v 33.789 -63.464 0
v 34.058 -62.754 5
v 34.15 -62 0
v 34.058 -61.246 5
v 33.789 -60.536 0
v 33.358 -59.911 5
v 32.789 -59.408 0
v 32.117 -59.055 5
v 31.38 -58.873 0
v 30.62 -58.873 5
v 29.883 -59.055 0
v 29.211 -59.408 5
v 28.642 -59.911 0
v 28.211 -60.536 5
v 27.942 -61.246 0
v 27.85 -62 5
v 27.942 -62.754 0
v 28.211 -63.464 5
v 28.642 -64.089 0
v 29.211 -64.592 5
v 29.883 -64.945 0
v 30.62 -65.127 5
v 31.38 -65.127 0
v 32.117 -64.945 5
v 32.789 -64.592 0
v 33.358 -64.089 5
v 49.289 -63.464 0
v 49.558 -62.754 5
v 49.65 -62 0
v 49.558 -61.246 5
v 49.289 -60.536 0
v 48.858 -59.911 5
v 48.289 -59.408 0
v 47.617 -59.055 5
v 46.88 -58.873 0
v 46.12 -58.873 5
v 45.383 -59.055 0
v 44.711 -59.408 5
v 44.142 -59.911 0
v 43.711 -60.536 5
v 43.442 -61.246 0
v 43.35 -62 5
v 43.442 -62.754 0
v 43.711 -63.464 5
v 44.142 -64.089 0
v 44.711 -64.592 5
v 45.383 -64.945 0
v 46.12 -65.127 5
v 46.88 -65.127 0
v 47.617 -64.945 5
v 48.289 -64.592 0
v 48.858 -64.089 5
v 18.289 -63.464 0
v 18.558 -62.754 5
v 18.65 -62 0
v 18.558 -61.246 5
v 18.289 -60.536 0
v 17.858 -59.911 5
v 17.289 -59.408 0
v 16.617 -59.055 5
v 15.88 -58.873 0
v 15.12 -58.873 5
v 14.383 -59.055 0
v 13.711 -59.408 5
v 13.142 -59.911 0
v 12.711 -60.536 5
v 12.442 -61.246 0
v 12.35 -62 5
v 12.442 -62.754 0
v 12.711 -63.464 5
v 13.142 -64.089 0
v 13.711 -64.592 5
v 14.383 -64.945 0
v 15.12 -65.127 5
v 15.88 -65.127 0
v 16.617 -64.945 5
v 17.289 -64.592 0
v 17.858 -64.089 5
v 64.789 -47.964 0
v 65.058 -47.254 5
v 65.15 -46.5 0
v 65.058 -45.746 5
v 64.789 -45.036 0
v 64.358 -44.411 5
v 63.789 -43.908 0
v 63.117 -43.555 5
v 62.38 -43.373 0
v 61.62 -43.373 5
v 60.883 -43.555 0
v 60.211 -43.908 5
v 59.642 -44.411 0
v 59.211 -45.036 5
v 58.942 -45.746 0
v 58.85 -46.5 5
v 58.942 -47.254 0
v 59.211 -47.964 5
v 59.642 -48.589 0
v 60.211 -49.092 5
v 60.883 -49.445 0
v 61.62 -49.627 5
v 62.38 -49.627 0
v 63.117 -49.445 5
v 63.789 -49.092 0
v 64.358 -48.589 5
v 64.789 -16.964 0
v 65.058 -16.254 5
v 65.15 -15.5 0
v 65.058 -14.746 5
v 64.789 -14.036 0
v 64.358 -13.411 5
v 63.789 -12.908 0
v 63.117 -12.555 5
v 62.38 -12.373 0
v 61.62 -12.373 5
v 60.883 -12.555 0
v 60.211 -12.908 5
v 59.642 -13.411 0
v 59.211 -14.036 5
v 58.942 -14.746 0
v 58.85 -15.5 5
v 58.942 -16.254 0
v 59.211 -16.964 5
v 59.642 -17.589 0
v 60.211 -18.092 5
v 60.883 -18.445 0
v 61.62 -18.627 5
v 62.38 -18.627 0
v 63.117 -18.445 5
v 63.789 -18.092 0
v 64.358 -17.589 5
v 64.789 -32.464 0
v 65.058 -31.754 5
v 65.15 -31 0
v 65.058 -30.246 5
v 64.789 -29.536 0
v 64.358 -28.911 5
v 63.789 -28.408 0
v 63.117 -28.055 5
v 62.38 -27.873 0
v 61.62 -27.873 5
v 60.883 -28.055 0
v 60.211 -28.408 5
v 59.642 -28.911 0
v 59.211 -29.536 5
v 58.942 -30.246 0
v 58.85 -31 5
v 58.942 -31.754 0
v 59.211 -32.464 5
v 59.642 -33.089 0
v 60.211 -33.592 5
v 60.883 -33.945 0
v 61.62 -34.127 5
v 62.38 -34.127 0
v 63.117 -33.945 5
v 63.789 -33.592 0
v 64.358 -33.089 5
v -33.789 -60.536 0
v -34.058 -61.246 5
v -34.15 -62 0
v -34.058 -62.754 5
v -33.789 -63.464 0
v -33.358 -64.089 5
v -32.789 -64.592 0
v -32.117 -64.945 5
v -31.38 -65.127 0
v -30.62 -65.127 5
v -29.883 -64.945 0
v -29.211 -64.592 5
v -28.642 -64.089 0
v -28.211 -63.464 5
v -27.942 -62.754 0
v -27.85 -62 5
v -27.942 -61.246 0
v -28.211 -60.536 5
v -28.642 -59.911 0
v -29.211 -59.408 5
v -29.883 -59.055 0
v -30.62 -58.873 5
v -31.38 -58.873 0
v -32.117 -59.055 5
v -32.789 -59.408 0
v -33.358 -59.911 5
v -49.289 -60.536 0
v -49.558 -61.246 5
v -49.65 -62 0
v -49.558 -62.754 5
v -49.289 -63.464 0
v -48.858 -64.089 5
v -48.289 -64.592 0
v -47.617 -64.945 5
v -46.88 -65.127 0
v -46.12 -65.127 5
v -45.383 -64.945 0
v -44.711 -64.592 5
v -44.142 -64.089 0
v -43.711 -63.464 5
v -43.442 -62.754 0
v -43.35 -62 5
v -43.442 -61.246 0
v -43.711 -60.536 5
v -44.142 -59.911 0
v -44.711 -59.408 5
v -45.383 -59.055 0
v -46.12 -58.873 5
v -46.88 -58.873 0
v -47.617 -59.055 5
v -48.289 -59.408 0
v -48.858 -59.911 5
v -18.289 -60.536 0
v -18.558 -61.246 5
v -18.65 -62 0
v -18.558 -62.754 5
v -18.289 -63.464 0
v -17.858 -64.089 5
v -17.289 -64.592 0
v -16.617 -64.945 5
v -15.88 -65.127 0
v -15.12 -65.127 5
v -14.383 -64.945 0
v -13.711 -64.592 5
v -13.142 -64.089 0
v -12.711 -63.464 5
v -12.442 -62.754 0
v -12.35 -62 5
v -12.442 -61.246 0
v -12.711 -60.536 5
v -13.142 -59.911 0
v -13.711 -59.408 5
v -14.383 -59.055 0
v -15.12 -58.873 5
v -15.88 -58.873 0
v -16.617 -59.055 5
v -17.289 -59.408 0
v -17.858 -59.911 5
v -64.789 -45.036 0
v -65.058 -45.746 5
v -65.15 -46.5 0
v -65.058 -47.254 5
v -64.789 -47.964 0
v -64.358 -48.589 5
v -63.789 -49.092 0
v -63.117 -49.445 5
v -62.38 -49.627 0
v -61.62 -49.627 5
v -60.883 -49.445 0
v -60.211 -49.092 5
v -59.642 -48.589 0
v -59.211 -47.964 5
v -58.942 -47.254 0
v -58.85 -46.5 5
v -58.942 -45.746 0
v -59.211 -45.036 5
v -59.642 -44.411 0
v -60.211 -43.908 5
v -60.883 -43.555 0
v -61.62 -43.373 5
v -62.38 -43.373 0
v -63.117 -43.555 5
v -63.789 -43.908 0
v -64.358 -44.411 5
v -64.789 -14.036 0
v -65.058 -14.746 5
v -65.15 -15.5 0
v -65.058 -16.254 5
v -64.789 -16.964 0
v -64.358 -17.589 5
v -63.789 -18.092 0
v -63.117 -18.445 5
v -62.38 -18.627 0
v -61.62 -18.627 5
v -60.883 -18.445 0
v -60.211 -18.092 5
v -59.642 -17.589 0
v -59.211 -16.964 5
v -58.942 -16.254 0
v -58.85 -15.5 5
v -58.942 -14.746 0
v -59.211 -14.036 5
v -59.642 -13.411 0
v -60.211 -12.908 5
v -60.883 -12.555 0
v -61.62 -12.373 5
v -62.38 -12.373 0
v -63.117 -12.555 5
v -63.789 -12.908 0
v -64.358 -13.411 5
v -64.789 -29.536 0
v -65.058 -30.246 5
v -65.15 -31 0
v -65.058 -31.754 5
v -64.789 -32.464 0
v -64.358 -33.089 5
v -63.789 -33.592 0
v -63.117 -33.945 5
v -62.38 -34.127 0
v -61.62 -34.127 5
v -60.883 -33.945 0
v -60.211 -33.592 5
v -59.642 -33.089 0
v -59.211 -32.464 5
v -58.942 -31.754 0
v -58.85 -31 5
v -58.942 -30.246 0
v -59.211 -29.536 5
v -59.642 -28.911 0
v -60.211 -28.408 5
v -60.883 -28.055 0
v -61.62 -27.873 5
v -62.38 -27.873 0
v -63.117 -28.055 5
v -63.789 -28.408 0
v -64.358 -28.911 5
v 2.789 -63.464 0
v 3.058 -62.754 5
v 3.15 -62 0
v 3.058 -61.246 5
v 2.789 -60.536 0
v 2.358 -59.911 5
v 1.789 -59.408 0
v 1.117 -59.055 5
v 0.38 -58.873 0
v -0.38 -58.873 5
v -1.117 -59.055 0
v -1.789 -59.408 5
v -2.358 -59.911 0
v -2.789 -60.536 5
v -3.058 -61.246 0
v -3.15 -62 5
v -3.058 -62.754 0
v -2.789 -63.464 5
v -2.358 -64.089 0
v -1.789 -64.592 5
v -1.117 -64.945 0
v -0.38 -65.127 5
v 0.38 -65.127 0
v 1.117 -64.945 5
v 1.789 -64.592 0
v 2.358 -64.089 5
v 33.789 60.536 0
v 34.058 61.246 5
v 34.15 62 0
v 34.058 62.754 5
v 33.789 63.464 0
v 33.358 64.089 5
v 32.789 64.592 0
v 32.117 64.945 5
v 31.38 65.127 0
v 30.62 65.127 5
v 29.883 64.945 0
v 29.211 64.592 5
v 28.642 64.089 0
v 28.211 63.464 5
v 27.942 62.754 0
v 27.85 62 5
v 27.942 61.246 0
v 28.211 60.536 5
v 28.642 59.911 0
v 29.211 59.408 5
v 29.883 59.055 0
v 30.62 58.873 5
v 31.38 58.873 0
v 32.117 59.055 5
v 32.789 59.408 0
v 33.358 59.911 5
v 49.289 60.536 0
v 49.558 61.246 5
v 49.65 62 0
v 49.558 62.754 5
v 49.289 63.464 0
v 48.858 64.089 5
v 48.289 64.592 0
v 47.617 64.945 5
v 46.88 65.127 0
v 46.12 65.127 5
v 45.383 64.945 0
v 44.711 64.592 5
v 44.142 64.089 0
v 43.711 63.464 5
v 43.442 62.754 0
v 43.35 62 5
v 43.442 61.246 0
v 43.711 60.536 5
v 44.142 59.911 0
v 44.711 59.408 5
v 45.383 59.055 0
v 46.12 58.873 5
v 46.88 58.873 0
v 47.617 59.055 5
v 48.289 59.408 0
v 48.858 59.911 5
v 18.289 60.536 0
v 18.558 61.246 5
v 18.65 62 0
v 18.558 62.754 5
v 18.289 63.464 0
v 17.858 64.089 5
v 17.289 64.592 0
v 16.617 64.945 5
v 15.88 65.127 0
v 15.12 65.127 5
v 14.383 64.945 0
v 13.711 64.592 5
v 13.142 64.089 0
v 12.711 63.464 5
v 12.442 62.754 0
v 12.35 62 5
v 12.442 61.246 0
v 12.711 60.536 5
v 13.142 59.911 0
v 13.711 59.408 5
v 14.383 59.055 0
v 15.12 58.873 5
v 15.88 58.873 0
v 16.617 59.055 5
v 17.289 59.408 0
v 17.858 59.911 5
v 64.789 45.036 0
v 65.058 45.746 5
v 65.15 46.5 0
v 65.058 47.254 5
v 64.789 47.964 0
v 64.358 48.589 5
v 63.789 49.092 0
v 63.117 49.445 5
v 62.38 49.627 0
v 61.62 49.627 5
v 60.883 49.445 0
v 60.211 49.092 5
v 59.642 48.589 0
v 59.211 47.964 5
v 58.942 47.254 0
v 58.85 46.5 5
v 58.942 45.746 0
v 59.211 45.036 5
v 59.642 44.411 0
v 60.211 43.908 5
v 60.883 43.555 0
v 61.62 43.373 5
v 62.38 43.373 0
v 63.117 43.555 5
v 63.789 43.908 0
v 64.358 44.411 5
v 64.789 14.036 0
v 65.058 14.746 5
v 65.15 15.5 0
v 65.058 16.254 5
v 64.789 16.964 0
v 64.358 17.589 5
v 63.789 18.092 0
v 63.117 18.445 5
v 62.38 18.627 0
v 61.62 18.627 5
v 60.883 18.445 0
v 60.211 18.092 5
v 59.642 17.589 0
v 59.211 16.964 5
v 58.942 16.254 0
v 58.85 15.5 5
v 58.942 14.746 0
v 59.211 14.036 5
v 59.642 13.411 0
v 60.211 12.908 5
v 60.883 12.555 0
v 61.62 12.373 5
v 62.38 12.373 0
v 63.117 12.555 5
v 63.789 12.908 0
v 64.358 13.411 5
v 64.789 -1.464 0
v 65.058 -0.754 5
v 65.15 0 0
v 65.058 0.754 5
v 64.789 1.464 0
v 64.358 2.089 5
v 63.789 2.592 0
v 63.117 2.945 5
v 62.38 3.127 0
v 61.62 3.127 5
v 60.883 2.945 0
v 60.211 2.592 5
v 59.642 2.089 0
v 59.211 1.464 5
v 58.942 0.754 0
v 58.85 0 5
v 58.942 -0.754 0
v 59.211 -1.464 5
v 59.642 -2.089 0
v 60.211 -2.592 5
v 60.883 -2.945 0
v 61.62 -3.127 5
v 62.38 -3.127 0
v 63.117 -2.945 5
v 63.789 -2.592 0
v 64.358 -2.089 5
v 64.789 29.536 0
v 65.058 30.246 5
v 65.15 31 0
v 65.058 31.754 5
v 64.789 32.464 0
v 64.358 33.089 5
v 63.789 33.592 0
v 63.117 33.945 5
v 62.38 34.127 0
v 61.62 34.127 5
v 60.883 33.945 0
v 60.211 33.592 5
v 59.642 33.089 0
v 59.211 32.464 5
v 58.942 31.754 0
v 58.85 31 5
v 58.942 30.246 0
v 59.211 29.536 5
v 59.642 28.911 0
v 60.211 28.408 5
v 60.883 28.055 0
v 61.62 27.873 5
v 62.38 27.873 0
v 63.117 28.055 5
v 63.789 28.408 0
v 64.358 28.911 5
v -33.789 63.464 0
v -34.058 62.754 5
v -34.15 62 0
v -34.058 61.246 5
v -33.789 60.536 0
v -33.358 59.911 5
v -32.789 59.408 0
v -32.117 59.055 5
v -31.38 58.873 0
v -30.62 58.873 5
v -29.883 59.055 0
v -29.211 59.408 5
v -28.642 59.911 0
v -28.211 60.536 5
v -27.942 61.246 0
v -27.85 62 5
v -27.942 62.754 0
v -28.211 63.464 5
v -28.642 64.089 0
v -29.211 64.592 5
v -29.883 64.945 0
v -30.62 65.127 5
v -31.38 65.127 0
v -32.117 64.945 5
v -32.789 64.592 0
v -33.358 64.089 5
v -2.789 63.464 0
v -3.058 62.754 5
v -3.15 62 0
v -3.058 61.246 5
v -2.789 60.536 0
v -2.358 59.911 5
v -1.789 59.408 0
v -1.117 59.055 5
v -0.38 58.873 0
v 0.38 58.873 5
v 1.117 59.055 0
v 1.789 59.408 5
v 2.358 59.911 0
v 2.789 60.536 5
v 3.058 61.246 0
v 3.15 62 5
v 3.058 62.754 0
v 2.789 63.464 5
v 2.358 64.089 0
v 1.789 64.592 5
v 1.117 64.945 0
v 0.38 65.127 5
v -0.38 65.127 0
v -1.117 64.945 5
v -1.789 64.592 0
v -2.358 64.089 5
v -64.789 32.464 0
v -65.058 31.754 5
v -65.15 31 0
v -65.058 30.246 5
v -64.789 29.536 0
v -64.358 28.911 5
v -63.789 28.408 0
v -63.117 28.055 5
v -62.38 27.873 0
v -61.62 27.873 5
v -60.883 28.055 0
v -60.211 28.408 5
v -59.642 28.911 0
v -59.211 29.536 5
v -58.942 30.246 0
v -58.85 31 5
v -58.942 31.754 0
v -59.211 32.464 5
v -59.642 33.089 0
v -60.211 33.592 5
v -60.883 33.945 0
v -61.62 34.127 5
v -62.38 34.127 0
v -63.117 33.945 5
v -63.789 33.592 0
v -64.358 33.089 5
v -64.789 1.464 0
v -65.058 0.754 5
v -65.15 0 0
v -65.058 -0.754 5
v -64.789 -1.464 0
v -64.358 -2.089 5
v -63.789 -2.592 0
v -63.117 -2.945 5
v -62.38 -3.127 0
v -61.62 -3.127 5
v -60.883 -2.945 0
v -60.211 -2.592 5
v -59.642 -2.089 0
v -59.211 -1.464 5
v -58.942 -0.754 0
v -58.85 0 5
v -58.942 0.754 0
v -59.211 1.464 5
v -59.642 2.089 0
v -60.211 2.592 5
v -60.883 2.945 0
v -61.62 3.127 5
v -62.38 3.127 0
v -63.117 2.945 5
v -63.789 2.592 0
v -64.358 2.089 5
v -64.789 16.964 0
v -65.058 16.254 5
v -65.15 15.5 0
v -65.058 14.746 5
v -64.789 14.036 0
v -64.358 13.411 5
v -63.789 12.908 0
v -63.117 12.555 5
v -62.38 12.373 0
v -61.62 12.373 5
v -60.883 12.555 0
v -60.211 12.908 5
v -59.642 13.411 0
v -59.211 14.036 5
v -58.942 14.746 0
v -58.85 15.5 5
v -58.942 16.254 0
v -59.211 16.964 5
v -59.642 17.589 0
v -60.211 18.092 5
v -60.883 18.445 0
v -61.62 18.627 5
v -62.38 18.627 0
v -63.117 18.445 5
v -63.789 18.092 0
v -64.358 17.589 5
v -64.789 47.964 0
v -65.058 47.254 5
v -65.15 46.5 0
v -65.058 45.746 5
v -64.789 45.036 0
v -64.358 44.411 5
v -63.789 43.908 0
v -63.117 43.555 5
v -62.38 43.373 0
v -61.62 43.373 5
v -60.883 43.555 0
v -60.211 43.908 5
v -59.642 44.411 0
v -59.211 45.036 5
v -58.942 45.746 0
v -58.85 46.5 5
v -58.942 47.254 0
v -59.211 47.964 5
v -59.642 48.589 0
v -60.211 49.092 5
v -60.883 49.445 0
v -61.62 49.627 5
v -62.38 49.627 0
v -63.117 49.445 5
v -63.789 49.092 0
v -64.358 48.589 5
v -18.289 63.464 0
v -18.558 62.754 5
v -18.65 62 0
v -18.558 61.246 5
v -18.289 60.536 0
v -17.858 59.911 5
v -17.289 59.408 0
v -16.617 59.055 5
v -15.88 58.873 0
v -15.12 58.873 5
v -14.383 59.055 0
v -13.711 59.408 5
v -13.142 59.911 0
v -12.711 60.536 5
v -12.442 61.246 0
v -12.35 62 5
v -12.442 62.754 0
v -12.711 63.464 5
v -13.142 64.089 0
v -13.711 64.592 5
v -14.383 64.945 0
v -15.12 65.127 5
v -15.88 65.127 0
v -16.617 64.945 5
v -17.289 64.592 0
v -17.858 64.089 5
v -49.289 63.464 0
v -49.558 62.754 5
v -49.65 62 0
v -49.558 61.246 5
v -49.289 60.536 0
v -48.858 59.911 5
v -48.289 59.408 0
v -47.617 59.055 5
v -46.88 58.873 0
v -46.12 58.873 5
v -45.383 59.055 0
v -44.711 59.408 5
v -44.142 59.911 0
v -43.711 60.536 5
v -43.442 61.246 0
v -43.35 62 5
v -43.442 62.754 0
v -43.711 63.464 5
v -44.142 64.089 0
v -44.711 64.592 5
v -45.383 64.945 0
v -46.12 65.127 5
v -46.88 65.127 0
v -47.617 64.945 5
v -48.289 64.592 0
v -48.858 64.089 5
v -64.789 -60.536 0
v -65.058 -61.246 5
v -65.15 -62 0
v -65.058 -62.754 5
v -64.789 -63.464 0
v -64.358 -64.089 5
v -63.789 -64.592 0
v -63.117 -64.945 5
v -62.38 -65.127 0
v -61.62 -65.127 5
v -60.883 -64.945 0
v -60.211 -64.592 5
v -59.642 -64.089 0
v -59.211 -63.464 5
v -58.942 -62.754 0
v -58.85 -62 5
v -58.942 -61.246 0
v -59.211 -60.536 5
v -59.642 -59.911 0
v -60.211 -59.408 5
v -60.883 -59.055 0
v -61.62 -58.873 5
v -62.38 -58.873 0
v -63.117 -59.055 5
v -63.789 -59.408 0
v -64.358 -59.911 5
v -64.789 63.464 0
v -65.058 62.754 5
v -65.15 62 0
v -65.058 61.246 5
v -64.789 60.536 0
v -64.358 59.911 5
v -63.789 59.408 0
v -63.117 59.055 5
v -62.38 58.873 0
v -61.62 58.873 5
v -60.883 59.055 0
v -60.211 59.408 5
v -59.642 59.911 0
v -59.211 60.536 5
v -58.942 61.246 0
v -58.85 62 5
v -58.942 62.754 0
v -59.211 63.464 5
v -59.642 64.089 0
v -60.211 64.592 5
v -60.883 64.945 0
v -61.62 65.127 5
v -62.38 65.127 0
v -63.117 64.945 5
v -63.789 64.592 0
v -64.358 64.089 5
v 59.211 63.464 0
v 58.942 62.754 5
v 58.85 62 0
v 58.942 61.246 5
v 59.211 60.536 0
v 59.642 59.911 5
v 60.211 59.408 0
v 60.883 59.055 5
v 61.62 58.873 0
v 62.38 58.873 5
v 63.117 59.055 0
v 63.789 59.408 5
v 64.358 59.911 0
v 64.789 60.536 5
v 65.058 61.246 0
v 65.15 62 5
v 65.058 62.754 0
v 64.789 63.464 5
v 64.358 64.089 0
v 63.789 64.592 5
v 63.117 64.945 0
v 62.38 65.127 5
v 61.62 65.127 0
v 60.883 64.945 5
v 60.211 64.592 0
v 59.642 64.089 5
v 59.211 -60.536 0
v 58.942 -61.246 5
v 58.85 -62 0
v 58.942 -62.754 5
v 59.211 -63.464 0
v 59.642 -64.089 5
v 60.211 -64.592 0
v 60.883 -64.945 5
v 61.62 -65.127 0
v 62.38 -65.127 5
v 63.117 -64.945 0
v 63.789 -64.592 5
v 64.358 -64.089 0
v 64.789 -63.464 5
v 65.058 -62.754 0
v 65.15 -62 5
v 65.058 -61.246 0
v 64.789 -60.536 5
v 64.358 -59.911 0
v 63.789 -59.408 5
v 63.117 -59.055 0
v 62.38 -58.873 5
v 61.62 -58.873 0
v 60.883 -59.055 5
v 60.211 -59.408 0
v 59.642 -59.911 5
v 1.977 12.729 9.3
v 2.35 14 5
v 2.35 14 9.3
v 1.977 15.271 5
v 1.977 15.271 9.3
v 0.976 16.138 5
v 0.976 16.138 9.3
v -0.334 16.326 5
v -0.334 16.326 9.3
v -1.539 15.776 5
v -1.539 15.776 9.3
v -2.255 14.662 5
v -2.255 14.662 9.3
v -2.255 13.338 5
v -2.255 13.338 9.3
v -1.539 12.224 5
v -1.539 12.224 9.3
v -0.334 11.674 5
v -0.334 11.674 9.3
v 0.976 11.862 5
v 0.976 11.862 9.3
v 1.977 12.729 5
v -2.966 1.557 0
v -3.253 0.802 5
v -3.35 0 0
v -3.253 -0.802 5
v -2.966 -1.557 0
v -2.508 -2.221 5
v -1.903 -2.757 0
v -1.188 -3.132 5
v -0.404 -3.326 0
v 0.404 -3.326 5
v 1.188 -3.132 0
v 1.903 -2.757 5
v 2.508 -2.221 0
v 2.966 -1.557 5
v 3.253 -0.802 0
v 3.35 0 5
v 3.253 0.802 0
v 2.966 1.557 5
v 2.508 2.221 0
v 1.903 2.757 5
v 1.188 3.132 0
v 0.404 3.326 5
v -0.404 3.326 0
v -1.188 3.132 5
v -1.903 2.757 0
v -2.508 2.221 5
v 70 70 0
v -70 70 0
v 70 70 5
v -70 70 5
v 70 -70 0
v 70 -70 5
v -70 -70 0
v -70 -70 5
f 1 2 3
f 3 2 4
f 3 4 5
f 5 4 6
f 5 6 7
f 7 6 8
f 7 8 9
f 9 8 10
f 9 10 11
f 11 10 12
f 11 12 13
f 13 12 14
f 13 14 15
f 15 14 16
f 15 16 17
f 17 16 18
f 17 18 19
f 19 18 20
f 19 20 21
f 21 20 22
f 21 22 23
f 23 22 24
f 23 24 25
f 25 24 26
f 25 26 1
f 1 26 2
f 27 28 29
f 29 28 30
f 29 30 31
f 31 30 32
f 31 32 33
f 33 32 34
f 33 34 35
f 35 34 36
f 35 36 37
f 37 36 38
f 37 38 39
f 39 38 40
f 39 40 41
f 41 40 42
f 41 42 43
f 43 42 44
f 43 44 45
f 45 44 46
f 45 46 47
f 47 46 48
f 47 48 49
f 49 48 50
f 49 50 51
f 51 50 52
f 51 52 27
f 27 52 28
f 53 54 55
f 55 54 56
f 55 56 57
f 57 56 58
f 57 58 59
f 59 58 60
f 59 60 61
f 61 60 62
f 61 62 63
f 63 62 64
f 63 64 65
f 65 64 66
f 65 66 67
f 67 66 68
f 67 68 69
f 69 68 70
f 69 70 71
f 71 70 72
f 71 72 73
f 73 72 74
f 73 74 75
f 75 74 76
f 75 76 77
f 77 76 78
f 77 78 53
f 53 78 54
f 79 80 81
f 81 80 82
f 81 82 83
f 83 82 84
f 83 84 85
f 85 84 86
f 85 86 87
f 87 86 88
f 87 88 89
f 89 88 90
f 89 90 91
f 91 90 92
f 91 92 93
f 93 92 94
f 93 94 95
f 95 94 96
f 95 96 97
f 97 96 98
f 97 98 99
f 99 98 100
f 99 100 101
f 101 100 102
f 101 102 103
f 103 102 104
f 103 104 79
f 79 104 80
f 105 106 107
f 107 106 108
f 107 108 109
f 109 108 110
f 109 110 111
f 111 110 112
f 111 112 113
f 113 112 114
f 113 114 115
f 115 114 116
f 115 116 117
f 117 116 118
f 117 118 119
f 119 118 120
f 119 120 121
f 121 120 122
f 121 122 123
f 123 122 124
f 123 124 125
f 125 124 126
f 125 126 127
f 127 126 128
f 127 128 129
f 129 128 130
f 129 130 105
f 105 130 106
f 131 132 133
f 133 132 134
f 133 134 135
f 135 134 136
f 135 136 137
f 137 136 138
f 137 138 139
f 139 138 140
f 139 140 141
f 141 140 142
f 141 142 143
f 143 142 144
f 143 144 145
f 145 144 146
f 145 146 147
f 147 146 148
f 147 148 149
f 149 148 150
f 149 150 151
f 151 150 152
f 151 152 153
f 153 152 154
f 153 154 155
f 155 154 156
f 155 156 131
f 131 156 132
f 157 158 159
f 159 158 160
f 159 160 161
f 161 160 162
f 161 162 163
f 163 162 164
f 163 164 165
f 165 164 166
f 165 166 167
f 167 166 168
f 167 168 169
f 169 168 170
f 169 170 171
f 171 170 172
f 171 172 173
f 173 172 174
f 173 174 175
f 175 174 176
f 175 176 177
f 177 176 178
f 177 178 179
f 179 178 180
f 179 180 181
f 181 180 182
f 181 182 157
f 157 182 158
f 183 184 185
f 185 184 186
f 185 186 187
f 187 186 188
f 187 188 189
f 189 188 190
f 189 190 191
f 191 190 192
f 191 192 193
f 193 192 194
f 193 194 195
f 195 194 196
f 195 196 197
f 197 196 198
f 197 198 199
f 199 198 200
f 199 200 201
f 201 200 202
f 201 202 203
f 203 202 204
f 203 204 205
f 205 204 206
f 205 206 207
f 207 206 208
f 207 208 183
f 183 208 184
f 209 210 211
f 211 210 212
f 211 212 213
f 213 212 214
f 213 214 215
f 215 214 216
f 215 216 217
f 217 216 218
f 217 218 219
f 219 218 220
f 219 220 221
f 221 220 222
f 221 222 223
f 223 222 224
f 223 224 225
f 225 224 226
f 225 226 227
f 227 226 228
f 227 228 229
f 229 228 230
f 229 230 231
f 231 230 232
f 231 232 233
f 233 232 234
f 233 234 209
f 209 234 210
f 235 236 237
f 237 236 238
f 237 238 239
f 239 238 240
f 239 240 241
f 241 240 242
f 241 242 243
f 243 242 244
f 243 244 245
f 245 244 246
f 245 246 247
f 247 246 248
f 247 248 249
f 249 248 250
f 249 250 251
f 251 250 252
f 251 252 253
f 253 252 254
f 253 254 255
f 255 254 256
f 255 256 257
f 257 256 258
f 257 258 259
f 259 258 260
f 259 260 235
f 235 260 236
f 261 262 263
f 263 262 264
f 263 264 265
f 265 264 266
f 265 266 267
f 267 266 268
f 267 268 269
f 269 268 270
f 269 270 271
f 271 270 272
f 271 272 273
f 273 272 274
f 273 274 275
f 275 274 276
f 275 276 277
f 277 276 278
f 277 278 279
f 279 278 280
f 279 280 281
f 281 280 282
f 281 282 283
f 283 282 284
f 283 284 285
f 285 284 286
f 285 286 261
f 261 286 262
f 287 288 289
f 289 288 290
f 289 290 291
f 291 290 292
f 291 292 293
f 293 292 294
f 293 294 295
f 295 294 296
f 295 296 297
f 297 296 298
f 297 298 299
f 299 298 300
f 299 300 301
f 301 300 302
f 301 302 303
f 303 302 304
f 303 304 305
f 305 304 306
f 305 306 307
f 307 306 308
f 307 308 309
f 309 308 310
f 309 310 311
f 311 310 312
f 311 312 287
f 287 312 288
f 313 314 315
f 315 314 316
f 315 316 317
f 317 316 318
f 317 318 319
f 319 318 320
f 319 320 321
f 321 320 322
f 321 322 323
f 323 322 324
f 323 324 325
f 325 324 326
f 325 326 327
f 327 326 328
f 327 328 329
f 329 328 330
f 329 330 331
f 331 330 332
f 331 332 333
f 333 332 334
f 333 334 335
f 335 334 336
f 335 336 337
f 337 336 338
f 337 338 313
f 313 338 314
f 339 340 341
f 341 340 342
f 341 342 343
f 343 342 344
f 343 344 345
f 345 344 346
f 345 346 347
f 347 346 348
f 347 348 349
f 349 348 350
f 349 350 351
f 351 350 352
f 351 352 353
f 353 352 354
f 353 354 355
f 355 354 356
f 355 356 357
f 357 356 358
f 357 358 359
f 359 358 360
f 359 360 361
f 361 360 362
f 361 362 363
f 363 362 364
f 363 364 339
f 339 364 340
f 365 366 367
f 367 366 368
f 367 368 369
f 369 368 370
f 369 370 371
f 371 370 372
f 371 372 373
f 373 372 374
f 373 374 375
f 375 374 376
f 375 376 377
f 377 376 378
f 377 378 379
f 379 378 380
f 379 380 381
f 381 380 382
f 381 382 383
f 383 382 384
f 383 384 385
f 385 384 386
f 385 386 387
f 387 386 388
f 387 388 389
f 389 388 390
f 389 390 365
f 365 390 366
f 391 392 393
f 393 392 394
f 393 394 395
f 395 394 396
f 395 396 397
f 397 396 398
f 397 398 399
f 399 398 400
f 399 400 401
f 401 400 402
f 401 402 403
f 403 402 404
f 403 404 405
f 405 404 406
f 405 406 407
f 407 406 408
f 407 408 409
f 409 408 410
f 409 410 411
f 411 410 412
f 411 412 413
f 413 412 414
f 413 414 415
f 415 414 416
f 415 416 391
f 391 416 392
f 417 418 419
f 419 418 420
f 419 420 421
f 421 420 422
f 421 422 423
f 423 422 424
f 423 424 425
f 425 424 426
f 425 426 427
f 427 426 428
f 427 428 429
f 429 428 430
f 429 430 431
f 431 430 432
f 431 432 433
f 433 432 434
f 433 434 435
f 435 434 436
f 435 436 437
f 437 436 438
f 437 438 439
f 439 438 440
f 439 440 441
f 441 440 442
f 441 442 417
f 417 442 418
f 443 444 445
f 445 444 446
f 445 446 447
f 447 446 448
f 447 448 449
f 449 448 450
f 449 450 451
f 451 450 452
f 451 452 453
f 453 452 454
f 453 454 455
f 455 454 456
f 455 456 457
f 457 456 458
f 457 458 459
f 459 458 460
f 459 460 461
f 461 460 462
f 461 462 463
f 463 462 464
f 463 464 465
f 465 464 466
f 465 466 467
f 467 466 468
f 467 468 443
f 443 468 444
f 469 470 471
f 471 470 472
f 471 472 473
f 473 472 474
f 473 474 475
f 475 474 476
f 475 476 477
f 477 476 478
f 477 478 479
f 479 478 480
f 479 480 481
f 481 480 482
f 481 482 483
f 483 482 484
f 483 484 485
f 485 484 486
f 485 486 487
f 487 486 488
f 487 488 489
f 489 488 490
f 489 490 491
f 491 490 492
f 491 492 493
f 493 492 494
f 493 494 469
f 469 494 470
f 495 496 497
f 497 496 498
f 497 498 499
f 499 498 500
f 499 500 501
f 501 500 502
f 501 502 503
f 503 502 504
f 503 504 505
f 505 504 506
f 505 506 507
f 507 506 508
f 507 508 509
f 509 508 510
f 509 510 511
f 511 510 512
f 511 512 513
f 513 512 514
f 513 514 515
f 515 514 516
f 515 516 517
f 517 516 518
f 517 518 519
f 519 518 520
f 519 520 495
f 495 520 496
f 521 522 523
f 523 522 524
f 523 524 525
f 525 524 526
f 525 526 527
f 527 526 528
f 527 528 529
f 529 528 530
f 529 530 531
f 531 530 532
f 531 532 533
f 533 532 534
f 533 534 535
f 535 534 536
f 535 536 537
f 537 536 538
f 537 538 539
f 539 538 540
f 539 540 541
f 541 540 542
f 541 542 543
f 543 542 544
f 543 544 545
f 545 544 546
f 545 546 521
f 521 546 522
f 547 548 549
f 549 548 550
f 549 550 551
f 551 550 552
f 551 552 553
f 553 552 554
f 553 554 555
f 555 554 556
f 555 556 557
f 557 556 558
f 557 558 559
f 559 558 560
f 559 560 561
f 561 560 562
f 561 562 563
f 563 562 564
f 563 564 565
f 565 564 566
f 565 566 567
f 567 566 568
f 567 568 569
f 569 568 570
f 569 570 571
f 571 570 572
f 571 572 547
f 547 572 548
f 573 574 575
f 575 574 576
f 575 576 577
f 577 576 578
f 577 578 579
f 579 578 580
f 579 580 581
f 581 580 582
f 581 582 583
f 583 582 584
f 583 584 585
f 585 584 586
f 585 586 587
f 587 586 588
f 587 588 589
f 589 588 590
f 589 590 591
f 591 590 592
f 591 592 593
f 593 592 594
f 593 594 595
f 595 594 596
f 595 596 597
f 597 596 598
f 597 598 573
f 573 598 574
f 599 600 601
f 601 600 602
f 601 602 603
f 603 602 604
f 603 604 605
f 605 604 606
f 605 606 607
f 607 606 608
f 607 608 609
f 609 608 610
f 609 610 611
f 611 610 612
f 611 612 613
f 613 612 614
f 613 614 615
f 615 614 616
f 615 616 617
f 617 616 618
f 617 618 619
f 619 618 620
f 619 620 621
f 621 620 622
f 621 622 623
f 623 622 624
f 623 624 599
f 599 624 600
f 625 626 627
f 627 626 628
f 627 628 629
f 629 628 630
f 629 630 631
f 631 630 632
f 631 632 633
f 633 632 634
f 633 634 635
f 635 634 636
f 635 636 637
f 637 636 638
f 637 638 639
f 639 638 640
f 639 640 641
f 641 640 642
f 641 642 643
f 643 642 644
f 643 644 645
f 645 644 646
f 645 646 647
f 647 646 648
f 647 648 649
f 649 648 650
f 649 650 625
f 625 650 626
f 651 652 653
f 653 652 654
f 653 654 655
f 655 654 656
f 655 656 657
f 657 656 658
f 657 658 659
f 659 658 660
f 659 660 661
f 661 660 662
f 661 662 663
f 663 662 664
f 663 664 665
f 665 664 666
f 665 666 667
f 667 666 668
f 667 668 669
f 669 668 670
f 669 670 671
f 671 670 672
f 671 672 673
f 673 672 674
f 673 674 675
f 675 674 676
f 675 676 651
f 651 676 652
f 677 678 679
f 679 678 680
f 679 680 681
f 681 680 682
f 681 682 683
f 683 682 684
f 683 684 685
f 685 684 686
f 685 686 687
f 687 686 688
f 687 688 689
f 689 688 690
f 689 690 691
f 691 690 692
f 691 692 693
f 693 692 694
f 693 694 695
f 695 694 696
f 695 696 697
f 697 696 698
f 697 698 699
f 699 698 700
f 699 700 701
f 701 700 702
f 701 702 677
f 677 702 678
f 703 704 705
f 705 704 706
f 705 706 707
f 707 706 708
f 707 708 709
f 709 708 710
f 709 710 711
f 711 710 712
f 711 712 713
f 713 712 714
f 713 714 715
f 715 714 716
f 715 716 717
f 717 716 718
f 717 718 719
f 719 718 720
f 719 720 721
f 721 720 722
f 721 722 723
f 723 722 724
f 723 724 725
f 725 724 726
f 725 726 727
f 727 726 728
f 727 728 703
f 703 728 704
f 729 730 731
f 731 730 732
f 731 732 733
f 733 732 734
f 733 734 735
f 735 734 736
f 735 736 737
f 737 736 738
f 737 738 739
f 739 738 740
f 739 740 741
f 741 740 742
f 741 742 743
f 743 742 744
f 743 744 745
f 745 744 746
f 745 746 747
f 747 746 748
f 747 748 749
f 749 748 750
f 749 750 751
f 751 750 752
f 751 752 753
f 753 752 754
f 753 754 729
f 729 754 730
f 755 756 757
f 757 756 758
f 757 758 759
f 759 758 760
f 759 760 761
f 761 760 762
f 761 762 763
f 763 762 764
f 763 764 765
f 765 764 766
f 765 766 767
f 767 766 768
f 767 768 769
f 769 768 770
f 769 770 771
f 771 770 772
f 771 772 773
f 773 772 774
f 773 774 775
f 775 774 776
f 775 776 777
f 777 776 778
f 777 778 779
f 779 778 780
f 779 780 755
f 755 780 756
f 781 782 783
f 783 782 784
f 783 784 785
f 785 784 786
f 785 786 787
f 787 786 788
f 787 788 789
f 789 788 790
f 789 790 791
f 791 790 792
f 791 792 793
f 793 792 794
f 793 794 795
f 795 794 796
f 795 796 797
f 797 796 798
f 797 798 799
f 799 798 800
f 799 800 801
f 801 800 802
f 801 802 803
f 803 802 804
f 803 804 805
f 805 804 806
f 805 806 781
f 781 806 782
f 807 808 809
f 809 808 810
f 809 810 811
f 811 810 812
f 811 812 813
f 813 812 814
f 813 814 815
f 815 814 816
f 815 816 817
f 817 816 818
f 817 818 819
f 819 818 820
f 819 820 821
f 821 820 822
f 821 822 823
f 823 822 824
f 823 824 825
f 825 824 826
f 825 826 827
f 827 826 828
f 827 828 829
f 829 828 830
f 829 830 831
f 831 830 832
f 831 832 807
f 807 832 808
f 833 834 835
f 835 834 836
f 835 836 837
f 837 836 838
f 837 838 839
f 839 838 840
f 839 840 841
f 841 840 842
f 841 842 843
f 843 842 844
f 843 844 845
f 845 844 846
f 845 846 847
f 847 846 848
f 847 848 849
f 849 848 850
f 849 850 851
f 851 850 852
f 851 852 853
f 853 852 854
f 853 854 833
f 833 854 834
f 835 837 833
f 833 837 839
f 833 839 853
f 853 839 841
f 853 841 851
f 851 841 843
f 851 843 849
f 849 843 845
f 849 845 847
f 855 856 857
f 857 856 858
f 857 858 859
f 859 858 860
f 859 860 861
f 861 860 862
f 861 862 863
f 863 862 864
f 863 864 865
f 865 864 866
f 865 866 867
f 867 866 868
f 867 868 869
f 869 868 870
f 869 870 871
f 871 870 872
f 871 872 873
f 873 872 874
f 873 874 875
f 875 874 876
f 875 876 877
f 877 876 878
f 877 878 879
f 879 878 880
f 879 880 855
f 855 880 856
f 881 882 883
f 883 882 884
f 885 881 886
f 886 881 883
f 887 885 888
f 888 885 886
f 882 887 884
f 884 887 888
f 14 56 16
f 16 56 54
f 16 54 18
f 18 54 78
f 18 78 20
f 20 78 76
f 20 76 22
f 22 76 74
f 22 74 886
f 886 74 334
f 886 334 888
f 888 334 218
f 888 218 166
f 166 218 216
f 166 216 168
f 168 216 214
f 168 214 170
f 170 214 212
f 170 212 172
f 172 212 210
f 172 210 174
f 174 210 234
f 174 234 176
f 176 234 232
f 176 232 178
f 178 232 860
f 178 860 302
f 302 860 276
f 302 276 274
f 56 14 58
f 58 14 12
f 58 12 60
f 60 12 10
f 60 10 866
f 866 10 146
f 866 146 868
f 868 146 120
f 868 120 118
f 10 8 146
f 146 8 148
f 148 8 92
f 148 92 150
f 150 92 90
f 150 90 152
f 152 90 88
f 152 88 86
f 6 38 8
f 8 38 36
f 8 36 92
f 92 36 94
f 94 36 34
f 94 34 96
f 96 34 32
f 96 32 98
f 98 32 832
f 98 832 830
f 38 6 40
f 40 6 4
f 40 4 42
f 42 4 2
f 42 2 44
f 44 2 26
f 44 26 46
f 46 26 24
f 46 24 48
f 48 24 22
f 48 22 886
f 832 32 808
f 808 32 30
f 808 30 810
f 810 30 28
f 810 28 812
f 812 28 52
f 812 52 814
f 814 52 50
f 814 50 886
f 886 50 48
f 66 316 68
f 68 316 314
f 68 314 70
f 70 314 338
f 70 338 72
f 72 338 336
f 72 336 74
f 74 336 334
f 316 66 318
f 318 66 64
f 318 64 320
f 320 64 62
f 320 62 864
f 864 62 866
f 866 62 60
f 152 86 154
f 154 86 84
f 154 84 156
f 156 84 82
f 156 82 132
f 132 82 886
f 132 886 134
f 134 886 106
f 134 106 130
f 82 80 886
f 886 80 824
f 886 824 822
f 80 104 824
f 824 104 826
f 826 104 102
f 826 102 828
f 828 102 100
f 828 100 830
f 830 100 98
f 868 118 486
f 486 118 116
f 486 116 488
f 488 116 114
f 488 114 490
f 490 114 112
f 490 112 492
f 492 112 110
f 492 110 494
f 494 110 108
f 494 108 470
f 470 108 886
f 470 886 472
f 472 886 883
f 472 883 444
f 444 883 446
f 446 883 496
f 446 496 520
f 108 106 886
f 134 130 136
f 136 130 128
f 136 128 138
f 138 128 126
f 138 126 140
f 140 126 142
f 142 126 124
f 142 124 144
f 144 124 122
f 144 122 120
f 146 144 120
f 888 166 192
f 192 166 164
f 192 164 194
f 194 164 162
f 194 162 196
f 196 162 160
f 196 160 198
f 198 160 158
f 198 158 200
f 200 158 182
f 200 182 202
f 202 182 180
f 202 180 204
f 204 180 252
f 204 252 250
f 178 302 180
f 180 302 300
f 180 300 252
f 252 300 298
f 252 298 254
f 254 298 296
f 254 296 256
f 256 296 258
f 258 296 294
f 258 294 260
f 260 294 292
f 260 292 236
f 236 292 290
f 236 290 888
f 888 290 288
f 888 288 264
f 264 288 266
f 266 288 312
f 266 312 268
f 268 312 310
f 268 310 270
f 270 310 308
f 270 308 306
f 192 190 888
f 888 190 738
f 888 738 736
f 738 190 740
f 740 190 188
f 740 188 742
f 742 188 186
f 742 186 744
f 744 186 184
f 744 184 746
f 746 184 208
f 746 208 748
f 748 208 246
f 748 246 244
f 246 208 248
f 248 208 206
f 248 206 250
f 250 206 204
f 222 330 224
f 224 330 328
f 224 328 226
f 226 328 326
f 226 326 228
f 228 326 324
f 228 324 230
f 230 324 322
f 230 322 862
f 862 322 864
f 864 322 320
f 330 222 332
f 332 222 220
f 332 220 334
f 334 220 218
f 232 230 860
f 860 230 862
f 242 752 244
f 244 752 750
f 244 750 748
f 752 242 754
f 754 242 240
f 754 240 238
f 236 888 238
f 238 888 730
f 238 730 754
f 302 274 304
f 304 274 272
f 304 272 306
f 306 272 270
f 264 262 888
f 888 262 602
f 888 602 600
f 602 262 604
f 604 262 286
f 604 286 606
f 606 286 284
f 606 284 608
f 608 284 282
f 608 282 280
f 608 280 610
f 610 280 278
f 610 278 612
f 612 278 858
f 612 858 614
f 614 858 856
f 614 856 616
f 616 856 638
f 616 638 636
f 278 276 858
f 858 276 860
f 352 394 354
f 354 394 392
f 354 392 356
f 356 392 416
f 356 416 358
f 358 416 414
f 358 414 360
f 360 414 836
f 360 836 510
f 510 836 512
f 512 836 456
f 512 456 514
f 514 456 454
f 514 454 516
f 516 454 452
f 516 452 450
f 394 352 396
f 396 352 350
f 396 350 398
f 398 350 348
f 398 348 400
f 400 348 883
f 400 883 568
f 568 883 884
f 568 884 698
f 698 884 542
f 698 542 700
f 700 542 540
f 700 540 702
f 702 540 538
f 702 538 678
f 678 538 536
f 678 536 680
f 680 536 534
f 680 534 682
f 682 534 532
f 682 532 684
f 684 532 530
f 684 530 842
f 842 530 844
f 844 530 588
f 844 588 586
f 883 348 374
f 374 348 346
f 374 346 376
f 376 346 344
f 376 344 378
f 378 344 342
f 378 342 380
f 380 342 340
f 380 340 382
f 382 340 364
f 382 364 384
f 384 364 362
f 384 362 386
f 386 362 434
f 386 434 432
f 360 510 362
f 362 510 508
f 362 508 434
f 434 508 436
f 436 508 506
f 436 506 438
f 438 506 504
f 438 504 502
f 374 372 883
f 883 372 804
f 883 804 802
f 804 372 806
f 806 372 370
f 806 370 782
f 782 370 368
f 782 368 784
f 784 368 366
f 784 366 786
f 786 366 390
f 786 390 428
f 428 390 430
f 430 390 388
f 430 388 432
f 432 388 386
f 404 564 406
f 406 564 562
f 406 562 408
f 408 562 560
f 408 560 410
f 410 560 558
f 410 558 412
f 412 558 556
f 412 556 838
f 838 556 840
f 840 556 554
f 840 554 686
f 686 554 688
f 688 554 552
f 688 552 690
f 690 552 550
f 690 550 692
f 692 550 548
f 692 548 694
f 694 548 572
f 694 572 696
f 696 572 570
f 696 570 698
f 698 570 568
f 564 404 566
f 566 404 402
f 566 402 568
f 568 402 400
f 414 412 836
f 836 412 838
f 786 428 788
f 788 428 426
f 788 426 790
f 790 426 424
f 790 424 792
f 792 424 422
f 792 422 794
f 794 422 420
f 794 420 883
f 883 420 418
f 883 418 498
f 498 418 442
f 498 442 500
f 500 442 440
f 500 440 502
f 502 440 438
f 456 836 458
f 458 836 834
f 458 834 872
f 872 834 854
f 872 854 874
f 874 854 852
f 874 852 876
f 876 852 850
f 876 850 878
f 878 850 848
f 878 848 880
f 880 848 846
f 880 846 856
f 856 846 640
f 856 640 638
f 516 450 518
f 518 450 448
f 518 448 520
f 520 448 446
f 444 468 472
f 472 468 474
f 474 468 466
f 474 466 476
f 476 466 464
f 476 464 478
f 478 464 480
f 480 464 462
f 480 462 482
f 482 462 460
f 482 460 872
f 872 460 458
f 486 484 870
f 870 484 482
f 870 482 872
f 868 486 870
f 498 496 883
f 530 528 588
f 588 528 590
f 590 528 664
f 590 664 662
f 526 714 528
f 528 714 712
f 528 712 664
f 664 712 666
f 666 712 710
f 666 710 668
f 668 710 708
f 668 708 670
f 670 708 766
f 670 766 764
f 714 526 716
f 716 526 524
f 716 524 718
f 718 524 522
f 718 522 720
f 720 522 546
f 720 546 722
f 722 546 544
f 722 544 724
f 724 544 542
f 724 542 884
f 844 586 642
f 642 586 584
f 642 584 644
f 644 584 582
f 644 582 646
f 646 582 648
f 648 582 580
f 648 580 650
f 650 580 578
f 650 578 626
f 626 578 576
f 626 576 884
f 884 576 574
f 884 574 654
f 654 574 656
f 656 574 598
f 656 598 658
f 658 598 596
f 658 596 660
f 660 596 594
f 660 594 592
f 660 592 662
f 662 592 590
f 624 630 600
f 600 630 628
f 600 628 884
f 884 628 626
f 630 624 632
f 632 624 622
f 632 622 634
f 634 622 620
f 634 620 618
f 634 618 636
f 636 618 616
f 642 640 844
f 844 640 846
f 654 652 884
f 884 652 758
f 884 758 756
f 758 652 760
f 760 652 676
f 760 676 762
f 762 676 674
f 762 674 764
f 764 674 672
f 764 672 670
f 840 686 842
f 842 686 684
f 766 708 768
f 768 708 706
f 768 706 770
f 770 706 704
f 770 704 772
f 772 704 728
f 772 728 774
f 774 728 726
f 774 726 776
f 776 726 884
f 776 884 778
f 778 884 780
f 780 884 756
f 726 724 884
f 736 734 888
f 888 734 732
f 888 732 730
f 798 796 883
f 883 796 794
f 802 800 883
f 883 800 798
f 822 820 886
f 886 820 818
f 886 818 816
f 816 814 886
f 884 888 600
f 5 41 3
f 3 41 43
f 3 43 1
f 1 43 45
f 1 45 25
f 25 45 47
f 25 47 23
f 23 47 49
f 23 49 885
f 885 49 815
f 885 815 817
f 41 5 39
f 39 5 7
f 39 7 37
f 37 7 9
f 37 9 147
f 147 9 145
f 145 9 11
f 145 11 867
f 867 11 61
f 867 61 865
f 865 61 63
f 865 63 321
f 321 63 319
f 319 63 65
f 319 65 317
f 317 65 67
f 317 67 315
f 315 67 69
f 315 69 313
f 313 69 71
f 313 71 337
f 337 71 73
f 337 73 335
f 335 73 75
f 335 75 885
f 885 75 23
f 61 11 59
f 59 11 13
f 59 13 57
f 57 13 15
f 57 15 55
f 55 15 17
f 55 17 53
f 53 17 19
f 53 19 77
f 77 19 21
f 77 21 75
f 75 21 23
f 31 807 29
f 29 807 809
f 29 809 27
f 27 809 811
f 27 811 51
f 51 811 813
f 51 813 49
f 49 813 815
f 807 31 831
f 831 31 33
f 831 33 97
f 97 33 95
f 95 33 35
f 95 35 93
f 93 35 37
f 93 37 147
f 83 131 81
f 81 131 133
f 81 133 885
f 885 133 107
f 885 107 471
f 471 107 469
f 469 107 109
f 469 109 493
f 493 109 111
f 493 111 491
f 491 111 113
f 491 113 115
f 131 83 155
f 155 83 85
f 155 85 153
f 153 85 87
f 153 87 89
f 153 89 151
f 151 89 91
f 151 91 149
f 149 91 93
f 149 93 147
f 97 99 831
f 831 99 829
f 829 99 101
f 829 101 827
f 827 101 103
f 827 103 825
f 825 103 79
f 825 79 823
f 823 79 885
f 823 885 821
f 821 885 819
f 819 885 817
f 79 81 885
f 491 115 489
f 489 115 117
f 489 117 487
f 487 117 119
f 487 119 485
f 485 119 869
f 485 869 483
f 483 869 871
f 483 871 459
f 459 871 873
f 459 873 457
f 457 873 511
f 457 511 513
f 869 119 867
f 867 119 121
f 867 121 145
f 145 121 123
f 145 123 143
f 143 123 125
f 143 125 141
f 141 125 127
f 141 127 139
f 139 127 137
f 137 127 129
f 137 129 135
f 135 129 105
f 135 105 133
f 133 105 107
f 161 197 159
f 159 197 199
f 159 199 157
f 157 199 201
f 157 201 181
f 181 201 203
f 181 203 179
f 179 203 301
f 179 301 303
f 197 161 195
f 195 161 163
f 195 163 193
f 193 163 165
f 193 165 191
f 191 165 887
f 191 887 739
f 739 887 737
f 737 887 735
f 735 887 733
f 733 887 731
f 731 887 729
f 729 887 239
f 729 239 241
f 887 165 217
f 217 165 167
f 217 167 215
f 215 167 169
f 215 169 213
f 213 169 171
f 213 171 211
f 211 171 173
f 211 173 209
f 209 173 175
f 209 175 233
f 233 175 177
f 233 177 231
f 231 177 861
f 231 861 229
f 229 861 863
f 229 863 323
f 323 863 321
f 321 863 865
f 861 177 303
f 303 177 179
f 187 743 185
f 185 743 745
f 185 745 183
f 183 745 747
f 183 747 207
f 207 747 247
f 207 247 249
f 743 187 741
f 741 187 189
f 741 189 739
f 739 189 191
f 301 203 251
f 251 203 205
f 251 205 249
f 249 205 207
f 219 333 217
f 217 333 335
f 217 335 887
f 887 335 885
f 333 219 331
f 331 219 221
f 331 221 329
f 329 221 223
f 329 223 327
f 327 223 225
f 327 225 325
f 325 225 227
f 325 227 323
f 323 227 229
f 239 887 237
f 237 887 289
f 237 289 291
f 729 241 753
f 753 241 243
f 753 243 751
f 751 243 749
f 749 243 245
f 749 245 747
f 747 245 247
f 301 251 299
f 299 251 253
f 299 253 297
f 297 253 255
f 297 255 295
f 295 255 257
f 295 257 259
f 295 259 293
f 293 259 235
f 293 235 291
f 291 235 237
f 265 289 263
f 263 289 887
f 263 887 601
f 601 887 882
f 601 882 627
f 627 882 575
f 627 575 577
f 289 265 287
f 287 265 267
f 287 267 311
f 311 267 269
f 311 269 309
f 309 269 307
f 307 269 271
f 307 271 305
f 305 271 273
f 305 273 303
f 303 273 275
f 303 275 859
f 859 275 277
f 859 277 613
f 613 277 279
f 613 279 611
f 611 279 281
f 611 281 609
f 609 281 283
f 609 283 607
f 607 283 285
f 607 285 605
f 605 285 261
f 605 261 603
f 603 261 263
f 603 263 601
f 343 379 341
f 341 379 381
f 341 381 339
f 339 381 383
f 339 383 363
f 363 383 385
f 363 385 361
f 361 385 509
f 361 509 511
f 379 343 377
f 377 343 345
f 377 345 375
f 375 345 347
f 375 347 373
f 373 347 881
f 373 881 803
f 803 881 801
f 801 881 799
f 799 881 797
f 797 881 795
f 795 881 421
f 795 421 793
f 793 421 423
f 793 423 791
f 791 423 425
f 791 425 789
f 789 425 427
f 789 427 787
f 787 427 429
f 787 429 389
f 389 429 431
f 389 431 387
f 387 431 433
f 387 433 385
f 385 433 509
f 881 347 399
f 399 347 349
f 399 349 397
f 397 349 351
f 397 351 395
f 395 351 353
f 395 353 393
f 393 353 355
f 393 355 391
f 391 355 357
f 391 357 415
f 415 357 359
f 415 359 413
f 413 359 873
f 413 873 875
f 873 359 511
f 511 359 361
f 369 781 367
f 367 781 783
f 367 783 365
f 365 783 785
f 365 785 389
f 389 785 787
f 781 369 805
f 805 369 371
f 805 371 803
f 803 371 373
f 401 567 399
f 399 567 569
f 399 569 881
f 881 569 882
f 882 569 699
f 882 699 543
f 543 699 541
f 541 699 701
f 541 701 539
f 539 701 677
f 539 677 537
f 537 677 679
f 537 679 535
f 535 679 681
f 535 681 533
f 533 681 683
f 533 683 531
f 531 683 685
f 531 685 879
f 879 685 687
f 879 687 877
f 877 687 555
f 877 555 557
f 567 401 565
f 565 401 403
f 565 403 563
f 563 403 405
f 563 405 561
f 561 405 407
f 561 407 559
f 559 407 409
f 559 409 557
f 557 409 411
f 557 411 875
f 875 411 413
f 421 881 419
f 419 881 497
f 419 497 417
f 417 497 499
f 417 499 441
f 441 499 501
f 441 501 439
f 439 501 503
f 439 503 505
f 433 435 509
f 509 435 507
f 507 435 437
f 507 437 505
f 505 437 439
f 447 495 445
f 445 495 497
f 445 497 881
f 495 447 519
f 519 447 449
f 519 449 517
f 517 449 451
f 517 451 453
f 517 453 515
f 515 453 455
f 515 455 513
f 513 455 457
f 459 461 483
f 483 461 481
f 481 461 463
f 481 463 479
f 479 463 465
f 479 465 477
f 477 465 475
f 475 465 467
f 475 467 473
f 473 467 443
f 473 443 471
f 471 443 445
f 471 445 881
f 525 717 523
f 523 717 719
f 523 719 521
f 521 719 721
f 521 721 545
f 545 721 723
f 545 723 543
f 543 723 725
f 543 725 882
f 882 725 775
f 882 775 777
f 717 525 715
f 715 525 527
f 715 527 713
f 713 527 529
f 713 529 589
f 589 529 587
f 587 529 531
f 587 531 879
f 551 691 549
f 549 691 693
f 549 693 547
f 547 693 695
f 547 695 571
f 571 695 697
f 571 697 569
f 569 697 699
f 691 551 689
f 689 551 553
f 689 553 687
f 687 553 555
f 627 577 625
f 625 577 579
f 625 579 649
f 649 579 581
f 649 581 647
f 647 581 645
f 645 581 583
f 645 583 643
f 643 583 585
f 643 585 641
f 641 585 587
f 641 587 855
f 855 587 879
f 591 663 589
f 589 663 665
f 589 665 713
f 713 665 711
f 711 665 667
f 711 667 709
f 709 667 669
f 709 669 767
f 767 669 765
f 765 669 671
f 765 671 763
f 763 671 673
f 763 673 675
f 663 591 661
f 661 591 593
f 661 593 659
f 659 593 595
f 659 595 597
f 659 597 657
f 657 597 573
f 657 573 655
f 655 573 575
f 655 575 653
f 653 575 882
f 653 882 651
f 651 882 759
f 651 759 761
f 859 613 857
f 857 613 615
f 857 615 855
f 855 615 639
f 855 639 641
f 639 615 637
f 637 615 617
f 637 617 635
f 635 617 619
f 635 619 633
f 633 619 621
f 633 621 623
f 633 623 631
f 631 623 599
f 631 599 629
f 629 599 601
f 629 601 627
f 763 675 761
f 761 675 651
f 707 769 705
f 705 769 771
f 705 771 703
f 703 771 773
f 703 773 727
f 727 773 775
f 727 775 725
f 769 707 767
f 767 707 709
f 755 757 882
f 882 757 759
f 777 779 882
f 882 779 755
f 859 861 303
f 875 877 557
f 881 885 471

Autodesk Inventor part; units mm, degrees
sketch "Skizze1" plane through (0, 0, 0) normal (0, 0, 1) x (1, 0, 0)
  line L0 (-70, 70) -> (70, 70)
  line L1 (70, 70) -> (70, -70)
  line L2 (70, -70) -> (-70, -70)
  line L3 (-70, -70) -> (-70, 70)
  line L4 (0, 98) -> (0, -98) projected
  line L5 (-98, 0) -> (98, 0) projected
  point P0 (0, 0)
  dimension "d0" = 70
  dimension "d1" = 140
  dimension "d2" = 140
  dimension "d3" = 70
extrude "Extrusion1" add sketch "Skizze1" along normal blind 5
sketch "Skizze2" plane through (0, 0, 5) normal (0, 0, 1) x (1, 0, 0)
  point P0 (0, 0)
  point P1 (0, 0)
hole "Bohrung1" at (0, 0, 5) direction (0, 0, -1) diameter 6.7 depth 9.5
sketch "Skizze3" plane through (0, 0, 5) normal (0, 0, 1) x (1, 0, 0)
  circle A0 centre (0, 0) radius 3.35 projected
  circle A1 centre (0, 0) radius 3.35 projected
  line L0 (-70, 70) -> (-70, -70) projected
  line L1 (-70, -70) -> (70, -70) projected
  line L2 (70, -70) -> (70, 70) projected
  line L3 (70, 70) -> (-70, 70) projected
  circle A2 centre (0, 14) radius 2.35
  dimension "d13" = 14
  dimension "d14" = 4.7
extrude "Extrusion2" add sketch "Skizze3" along normal blind 4.3 contours A2
sketch "Skizze4" plane through (0, 0, 5) normal (0, 0, 1) x (1, 0, 0)
  circle A0 centre (0, 14) radius 2.35 projected
  circle A1 centre (0, 0) radius 3.35 projected
  line L0 (-70, 70) -> (-70, -70) projected
  line L1 (-70, -70) -> (70, -70) projected
  line L2 (70, -70) -> (70, 70) projected
  line L3 (70, 70) -> (-70, 70) projected
  line L4 (-98, 0) -> (98, 0) projected
  line L5 (0, 98) -> (0, -98) projected
  point P0 (-62, 62)
  point P1 (62, 62)
  point P2 (-62, -62)
  point P3 (62, -62)
  dimension "d17" = 62
  dimension "d18" = 62
  dimension "d21" = 124
  dimension "d24" = 124
hole "Bohrung2" at (-62, 62, 5) at (62, 62, 5) at (-62, -62, 5) at (62, -62, 5) direction (0, 0, -1) diameter 6.3 end through all
sketch "Skizze5" plane through (0, 0, 5) normal (0, 0, 1) x (1, 0, 0)
  circle A0 centre (-62, -62) radius 3.15 projected
  circle A1 centre (-62, 62) radius 3.15 projected
  circle A2 centre (62, 62) radius 3.15 projected
  circle A3 centre (62, -62) radius 3.15 projected
  circle A4 centre (0, 14) radius 2.35 projected
  circle A5 centre (0, 0) radius 3.35 projected
  line L0 (-70, 70) -> (-70, -70) projected
  line L1 (-70, -70) -> (70, -70) projected
  line L2 (70, -70) -> (70, 70) projected
  line L3 (70, 70) -> (-70, 70) projected
  line L4 (0, 98) -> (0, -98) projected
  line L5 (-98, 0) -> (98, 0) projected
  point P0 (-62, 0)
  point P1 (-62, 15.5)
  point P2 (-62, 31)
  point P3 (-62, 46.5)
  point P4 (0, 62)
  point P5 (-15.5, 62)
  point P6 (-31, 62)
  point P7 (-46.5, 62)
  dimension "d35" = 62
  dimension "d36" = 0
  dimension "d37" = 15.5
  dimension "d38" = 15.5
  dimension "d39" = 15.5
  dimension "d40" = 15.5
  dimension "d41" = 31
  dimension "d42" = 46.5
hole "Bohrung3" at (-62, 0, 5) at (-62, 15.5, 5) at (-62, 31, 5) at (-62, 46.5, 5) at (0, 62, 5) at (-15.5, 62, 5) at (-31, 62, 5) at (-46.5, 62, 5) direction (0, 0, -1) diameter 6.3 end through all
mirror "Spiegeln1" about plane through (0, 0, 0) normal (1, 0, 0) of "Bohrung3"
mirror "Spiegeln2" about plane through (0, 0, 0) normal (0, 1, 0) of "Bohrung3", "Spiegeln1"
equation "\"d0\" = 0.5 * d1"
equation "\"d3\" = 0.5 * d2"
properties part number "MessHalterV2"
